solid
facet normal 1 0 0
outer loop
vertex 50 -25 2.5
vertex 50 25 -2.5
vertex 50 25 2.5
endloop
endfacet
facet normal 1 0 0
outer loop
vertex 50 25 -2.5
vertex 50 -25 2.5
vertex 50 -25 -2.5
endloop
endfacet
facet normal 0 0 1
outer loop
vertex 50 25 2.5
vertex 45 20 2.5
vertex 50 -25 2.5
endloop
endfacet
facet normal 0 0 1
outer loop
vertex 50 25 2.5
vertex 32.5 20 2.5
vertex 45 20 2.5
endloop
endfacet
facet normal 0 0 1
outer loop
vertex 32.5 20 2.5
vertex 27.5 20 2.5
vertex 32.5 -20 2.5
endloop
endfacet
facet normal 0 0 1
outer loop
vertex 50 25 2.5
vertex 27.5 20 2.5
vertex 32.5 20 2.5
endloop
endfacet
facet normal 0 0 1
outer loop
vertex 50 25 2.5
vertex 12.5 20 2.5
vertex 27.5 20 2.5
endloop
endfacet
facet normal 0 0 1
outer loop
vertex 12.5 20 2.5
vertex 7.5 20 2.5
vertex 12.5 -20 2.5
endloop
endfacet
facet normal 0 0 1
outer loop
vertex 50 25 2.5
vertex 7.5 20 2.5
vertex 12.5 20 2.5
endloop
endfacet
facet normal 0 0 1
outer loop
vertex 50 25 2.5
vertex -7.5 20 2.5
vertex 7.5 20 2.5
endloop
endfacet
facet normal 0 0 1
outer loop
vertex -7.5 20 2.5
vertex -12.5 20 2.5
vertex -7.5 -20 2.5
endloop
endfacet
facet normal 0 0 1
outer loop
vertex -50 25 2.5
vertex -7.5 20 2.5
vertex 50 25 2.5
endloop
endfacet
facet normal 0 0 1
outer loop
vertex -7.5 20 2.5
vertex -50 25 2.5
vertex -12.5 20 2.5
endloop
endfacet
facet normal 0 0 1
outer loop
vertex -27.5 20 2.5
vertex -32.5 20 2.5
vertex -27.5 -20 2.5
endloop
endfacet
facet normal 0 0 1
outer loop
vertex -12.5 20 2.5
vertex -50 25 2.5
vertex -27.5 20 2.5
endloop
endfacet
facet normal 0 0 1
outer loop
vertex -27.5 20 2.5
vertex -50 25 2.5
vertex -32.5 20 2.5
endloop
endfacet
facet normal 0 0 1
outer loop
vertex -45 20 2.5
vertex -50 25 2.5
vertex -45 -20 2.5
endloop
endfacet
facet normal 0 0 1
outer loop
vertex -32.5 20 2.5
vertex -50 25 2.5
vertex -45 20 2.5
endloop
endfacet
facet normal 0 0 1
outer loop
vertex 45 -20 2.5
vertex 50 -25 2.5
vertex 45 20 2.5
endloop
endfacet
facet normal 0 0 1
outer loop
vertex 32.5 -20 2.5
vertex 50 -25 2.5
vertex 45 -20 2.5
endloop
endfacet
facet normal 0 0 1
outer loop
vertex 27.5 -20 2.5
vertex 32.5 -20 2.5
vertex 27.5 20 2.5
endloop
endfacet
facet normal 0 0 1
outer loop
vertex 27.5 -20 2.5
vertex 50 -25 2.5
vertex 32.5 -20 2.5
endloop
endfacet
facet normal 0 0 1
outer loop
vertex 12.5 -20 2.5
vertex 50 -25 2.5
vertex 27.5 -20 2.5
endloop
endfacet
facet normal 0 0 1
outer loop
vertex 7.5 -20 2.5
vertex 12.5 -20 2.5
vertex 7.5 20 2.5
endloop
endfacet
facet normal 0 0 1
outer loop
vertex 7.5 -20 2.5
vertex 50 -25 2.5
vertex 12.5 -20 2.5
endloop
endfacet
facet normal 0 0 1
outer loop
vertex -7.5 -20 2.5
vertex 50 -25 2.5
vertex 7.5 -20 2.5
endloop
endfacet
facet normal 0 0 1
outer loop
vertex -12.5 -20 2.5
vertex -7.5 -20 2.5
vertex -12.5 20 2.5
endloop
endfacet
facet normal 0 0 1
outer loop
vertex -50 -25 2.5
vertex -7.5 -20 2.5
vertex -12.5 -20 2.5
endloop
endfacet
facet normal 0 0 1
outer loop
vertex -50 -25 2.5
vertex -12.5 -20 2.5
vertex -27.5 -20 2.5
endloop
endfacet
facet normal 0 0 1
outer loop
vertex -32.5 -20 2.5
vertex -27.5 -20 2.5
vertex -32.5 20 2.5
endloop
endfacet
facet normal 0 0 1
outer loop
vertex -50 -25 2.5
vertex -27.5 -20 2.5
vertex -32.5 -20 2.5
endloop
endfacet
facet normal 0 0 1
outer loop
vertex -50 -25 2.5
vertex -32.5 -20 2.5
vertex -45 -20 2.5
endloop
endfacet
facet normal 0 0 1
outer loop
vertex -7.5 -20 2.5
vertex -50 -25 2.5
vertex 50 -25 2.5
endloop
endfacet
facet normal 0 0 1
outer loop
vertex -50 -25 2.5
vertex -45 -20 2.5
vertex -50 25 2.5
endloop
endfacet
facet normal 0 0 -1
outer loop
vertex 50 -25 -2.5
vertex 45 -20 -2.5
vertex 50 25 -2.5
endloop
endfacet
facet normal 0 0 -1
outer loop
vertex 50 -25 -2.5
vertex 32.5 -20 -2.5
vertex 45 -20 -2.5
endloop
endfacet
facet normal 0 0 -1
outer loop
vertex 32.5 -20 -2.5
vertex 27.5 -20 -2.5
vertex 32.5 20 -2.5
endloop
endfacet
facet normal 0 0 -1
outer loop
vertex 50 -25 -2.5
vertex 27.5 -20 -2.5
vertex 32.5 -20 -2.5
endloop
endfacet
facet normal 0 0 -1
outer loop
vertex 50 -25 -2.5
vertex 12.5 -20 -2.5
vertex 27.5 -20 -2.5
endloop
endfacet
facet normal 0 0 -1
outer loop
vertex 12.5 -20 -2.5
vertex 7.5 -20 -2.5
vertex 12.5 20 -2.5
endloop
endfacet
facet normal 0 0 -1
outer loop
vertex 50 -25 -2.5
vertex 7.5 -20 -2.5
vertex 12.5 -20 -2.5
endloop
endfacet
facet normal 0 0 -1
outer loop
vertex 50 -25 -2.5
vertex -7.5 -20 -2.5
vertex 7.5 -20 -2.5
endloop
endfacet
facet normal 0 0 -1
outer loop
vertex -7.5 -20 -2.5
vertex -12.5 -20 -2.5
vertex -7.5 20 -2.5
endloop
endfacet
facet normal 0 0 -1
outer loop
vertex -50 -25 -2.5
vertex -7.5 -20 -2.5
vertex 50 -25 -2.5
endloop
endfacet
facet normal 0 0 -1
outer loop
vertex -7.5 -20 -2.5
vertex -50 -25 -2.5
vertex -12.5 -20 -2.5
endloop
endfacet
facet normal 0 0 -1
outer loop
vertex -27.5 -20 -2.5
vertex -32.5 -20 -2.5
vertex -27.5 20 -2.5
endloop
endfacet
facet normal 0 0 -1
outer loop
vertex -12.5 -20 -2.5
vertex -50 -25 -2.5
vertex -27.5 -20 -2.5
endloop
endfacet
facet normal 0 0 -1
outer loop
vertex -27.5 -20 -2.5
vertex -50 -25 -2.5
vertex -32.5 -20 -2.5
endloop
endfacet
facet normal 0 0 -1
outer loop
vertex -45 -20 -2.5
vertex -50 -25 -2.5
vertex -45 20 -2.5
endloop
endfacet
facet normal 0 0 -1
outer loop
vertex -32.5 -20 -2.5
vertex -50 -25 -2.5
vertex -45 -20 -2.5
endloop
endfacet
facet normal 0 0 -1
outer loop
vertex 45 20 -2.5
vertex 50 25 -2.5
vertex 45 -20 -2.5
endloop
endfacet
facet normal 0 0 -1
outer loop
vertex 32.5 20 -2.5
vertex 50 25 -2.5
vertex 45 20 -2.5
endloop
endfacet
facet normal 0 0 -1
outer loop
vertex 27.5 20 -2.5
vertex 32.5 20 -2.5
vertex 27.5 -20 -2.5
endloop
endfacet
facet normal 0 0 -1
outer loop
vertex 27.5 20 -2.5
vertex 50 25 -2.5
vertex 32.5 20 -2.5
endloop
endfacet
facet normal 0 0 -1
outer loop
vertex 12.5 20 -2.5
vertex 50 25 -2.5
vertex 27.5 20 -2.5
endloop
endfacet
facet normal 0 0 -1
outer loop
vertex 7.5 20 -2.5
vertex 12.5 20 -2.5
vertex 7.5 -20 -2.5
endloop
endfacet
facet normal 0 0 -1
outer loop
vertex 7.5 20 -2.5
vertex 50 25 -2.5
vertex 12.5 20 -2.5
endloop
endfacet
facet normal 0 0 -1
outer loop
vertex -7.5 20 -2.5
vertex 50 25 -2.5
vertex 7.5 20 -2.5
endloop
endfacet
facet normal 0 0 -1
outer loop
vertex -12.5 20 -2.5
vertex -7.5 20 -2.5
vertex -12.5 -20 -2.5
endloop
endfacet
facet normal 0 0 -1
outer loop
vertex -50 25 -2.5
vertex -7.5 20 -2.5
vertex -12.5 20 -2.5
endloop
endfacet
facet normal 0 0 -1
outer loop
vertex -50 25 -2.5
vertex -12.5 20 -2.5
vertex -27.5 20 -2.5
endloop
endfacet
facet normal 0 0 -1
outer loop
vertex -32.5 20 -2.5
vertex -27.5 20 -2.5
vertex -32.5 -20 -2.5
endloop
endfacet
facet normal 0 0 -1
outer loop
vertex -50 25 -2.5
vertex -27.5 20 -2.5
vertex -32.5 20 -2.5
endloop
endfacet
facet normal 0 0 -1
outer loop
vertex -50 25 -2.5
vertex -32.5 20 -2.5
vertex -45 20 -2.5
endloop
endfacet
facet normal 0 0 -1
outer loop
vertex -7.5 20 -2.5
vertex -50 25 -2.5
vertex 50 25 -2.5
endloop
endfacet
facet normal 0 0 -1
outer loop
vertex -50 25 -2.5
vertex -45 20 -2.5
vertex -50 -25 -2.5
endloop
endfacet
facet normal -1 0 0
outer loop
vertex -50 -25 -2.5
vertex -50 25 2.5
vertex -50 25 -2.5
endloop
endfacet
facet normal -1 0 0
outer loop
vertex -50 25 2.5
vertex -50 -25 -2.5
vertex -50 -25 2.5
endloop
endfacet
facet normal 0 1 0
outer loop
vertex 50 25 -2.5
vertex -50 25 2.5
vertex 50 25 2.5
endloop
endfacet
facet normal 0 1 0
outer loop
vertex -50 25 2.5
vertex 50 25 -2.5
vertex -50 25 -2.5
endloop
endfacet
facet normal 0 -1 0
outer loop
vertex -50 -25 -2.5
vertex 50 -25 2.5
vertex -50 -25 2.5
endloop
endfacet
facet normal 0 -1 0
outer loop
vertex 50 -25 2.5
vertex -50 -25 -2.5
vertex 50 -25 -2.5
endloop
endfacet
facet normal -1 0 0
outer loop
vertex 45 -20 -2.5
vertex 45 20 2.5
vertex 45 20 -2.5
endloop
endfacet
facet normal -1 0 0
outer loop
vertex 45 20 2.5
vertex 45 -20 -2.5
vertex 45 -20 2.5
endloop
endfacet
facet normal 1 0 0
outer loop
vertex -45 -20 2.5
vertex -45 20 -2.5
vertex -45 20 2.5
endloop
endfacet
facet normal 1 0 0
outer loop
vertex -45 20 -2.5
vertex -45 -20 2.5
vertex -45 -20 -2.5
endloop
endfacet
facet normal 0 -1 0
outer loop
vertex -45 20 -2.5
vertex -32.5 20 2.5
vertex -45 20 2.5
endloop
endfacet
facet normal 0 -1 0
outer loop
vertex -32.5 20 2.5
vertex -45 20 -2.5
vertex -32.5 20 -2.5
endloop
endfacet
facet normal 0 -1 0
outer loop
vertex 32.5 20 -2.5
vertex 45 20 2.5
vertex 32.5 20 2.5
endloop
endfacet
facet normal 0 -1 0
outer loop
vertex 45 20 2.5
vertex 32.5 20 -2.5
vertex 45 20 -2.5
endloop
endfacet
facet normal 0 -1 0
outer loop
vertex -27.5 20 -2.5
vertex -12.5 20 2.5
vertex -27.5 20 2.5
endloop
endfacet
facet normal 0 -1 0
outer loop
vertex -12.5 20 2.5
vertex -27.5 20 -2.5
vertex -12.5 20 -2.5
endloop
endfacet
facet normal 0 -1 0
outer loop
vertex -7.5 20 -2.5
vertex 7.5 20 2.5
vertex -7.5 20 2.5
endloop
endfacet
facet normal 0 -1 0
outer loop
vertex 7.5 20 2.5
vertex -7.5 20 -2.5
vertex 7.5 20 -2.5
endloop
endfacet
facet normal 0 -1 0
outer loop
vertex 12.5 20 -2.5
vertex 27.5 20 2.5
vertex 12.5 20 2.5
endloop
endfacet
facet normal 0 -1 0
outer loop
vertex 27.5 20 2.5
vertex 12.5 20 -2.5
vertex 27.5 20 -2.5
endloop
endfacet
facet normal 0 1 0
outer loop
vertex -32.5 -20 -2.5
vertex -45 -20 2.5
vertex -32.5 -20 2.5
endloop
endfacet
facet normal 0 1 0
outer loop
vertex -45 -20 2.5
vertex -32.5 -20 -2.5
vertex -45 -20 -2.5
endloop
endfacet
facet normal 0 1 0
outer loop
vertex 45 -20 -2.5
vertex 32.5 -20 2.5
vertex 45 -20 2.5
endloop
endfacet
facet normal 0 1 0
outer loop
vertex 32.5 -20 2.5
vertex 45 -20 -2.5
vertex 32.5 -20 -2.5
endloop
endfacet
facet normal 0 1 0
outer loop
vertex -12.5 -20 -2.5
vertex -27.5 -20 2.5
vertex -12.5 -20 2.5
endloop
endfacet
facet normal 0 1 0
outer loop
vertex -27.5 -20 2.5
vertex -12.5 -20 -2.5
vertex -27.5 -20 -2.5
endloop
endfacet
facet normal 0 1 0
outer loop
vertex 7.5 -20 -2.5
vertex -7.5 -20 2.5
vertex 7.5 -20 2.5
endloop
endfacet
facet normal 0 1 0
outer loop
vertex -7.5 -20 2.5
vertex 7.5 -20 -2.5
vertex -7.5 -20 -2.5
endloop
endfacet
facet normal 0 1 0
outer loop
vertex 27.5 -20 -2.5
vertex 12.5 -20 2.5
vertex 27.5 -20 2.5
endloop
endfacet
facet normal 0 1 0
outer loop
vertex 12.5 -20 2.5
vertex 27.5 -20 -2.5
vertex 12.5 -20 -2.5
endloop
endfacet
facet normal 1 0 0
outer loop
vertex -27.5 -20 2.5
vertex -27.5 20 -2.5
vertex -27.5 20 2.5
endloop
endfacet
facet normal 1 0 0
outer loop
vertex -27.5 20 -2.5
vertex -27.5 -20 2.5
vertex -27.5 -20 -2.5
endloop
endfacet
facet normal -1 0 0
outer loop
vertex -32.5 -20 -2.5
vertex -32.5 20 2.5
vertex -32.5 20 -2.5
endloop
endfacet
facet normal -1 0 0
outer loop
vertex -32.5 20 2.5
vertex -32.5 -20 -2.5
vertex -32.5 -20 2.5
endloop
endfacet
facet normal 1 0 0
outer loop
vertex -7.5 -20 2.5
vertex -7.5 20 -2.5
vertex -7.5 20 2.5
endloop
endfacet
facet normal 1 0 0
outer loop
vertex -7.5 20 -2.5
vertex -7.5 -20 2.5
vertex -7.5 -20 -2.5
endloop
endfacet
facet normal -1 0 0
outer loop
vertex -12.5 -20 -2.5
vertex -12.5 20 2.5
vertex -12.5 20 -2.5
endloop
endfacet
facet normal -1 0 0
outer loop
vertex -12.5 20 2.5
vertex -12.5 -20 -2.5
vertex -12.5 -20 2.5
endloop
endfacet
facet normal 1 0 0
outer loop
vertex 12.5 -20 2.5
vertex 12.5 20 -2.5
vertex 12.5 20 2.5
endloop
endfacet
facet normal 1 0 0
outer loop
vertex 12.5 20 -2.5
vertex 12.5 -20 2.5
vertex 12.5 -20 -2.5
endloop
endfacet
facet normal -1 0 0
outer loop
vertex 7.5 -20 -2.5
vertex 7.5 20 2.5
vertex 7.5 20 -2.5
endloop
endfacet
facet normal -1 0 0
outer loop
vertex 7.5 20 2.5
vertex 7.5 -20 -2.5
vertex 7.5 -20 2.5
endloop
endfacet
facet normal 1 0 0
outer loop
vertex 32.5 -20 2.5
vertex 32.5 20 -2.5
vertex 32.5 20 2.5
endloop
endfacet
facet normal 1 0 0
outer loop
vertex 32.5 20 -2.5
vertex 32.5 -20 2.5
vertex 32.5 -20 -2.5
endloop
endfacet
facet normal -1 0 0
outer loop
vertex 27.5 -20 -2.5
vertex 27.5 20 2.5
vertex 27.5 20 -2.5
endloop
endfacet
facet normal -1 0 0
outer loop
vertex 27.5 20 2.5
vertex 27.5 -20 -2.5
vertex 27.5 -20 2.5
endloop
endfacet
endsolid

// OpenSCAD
// Parameters for the rectangular frame
frame_length = 100;  // Length of the outer rectangle
frame_width = 50;    // Width of the outer rectangle
frame_thickness = 5; // Thickness of the frame
division_count = 4;  // Number of internal divisions
division_thickness = 5; // Thickness of the internal divisions

module rectangular_frame() {
    // Outer frame
    difference() {
        // Outer rectangle
        cube([frame_length, frame_width, frame_thickness], center = true);
        
        // Hollow inner rectangle
        translate([0, 0, -0.1]) // Slightly offset to ensure proper subtraction
        cube([frame_length - 2 * frame_thickness, frame_width - 2 * frame_thickness, frame_thickness + 0.2], center = true);
    }
    
    // Internal divisions
    for (i = [1:division_count]) {
        translate([-(frame_length / 2) + (i * (frame_length / (division_count + 1))), 0, 0])
        cube([division_thickness, frame_width, frame_thickness], center = true);
    }
}

// Render the rectangular frame
rectangular_frame();
